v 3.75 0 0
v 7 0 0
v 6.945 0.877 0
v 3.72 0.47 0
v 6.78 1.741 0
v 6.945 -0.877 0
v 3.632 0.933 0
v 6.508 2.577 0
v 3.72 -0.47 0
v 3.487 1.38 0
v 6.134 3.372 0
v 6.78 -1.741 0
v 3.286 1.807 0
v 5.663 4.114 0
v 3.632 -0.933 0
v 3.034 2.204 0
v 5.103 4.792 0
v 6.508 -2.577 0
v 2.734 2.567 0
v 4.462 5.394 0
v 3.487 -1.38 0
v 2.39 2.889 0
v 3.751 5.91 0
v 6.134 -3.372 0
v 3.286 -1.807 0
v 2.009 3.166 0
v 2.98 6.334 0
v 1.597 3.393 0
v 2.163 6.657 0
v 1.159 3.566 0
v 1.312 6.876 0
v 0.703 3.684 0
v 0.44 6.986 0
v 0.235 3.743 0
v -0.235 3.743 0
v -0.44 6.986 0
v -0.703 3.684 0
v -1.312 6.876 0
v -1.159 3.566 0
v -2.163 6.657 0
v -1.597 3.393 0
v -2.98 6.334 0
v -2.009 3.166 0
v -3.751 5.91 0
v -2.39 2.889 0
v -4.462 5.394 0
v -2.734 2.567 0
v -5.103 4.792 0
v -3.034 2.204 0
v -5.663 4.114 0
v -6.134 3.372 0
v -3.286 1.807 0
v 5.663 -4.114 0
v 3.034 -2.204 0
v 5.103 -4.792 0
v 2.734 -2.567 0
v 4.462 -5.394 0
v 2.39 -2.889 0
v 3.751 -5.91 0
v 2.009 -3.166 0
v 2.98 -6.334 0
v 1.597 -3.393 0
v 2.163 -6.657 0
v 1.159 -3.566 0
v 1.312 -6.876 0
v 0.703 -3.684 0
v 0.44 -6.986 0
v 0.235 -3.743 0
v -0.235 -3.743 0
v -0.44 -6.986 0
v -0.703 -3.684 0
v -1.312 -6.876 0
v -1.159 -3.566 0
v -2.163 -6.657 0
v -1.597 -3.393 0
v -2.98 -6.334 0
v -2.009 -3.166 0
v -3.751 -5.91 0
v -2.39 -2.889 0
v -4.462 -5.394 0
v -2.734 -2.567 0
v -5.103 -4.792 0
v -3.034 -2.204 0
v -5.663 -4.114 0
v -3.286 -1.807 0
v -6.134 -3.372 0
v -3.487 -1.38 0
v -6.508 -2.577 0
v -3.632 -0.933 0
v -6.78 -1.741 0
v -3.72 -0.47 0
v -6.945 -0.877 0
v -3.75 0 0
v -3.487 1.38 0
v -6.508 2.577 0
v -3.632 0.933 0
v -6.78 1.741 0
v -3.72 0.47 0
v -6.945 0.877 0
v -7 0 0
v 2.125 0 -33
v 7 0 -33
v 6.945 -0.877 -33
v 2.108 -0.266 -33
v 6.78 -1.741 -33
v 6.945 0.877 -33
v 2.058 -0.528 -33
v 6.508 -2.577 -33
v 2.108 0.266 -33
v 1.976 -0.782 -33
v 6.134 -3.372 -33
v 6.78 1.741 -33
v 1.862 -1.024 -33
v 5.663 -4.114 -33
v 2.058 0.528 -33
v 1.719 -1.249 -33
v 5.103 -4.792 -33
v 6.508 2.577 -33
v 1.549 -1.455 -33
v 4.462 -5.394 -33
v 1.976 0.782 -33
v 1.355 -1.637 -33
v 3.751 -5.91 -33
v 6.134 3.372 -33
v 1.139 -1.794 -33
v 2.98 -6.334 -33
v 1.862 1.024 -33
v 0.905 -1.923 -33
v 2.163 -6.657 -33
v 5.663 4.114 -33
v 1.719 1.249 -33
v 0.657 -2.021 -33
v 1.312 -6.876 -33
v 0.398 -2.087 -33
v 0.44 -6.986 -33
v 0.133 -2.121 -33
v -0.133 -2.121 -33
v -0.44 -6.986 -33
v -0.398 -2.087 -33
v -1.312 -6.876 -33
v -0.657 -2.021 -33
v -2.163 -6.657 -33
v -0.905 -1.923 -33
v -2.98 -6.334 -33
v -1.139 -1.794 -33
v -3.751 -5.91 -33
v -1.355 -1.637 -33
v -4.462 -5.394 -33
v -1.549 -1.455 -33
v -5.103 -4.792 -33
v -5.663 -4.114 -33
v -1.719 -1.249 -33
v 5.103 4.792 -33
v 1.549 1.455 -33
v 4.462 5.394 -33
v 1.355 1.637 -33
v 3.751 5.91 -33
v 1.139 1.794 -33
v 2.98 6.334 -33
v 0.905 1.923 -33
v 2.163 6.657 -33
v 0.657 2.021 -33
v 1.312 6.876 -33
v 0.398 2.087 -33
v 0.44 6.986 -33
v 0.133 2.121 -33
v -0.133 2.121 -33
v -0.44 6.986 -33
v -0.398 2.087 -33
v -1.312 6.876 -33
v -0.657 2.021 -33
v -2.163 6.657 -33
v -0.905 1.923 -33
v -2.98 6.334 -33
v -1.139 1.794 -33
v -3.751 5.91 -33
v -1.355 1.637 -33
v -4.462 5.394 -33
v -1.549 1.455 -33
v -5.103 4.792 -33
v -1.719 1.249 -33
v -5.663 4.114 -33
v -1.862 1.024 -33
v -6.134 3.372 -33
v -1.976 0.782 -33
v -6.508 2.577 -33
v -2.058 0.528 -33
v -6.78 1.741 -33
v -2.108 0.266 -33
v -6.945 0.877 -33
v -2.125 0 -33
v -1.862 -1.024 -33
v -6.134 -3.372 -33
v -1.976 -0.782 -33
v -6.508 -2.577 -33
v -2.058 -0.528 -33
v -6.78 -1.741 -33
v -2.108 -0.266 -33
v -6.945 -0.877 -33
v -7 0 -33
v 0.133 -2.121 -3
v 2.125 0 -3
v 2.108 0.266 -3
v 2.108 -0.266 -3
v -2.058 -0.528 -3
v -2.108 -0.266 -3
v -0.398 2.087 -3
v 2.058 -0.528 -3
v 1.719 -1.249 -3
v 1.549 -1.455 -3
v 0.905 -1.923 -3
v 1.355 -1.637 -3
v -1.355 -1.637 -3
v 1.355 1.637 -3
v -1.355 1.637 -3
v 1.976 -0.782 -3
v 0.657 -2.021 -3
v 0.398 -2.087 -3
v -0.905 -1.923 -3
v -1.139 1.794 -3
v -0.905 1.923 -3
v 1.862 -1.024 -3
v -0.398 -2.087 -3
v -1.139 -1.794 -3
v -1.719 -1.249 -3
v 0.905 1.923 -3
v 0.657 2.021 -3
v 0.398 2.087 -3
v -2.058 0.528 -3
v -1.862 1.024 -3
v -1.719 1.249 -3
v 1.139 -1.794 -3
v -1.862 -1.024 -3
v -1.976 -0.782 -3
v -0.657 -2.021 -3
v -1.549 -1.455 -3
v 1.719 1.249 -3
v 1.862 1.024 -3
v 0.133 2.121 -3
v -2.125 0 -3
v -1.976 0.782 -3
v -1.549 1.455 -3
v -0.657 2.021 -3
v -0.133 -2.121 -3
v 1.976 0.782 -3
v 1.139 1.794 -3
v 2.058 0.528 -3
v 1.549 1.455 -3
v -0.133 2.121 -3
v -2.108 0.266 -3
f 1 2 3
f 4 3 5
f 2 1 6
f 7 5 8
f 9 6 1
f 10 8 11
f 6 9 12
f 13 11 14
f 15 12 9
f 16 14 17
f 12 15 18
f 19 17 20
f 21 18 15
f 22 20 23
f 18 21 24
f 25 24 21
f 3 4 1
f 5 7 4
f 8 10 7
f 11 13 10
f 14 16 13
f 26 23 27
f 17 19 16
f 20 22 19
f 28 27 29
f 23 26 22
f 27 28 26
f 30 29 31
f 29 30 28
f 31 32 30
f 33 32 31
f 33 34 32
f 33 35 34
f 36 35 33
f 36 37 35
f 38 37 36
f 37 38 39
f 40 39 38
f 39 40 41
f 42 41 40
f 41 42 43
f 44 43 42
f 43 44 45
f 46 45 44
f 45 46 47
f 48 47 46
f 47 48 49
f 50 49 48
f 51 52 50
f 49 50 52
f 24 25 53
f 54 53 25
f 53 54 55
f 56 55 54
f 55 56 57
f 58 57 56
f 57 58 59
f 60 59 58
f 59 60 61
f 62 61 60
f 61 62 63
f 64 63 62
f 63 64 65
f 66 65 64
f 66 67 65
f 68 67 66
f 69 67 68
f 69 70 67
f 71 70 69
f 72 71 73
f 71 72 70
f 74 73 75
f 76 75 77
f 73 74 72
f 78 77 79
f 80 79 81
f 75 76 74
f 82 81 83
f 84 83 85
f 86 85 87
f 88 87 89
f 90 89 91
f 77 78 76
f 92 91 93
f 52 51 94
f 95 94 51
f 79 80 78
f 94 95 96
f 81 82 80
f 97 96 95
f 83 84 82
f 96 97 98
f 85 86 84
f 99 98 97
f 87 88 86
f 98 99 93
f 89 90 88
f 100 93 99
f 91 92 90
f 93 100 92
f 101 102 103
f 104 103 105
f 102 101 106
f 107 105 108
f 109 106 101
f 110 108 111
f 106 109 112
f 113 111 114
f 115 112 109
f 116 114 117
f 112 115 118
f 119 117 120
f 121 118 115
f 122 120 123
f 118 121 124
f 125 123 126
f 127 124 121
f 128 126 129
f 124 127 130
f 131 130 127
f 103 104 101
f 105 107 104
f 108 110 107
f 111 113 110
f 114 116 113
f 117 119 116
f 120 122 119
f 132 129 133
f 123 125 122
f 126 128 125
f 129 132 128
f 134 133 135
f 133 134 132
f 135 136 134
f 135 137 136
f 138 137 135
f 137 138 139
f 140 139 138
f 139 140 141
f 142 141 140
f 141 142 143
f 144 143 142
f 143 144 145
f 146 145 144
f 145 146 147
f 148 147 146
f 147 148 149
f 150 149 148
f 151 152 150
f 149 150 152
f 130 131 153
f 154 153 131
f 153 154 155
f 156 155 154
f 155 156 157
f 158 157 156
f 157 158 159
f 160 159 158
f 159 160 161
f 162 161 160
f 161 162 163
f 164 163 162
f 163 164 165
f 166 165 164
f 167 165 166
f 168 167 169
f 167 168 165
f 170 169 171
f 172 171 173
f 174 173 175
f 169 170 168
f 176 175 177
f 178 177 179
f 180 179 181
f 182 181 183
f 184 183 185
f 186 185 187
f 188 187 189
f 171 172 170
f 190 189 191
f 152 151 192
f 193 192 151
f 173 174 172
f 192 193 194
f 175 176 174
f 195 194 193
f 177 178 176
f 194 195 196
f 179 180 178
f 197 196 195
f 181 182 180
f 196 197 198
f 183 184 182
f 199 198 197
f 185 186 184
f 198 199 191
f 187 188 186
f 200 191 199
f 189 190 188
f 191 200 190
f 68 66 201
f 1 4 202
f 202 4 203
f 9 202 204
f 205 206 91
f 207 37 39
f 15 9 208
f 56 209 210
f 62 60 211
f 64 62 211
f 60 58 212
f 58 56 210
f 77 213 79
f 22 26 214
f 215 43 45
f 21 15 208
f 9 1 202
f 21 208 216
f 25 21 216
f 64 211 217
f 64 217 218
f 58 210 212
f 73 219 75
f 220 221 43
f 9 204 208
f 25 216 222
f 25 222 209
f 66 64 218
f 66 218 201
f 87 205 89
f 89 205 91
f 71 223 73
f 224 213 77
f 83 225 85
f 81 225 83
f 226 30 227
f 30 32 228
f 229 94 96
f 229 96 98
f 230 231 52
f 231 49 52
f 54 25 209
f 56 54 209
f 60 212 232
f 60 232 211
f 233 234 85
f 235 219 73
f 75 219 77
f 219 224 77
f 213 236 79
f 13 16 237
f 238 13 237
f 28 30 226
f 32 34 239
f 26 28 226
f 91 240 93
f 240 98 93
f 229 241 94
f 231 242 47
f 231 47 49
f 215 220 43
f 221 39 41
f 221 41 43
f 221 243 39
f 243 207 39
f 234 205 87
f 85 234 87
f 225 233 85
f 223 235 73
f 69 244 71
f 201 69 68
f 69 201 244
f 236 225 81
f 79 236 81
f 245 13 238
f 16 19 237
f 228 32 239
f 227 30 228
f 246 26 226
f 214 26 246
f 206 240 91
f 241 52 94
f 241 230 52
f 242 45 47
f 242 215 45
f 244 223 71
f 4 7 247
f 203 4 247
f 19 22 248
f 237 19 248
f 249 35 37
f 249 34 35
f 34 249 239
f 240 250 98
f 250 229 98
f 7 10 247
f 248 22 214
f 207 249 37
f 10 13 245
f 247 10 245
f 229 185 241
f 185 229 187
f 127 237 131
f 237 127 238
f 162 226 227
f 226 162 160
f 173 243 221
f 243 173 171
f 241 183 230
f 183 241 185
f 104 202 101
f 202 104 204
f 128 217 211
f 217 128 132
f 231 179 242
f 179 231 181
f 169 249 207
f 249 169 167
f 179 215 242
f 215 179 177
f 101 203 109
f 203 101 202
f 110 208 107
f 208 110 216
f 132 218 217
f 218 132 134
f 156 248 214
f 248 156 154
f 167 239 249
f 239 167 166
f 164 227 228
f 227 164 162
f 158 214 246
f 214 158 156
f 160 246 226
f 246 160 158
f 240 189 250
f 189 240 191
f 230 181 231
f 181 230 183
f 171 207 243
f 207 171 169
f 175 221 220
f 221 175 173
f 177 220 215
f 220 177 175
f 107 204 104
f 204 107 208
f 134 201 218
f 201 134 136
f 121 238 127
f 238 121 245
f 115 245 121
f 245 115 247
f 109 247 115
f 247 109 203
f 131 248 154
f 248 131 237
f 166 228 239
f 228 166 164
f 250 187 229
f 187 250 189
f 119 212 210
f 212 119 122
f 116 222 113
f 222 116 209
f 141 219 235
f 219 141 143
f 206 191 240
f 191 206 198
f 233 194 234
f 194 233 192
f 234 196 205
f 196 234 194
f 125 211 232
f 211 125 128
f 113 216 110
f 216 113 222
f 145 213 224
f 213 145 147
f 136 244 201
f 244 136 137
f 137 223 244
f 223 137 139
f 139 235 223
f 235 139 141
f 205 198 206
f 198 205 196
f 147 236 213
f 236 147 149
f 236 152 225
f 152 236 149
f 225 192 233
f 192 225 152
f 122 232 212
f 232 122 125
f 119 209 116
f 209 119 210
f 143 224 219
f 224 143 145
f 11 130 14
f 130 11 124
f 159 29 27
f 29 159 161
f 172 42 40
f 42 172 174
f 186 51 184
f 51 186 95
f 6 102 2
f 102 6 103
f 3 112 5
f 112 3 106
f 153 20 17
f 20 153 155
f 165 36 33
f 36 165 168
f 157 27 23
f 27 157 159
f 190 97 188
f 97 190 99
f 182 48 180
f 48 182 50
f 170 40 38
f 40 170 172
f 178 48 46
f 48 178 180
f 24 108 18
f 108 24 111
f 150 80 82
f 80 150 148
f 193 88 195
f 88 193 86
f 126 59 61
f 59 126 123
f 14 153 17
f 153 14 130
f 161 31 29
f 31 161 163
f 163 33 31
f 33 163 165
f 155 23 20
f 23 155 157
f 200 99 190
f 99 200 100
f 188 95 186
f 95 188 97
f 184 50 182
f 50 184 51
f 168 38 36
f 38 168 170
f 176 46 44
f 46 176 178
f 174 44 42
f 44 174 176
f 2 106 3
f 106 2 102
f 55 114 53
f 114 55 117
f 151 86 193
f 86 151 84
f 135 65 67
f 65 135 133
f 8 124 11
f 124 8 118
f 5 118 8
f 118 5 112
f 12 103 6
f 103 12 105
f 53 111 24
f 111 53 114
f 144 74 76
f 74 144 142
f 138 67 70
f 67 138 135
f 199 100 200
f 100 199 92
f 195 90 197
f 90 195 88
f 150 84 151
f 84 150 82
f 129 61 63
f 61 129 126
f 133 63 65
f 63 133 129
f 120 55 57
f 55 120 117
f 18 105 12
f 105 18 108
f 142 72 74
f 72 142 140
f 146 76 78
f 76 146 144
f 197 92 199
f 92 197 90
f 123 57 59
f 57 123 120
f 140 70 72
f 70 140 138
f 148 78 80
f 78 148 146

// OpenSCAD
$fn = 50;


difference() {
	union() {
		translate(v = [0, 0, -33.0000000000]) {
			cylinder(h = 33, r = 7.0000000000);
		}
		cylinder(h = 0, r = 13.0000000000);
	}
	union() {
		translate(v = [0, 0, 0]) {
			rotate(a = [0, 0, 0]) {
				difference() {
					union() {
						#translate(v = [0, 0, -33.0000000000]) {
							cylinder(h = 33, r = 2.0000000000);
						}
						#translate(v = [0, 0, -3]) {
							cylinder(h = 3, r = 7.0000000000, r1 = 2.1250000000, r2 = 3.7500000000);
						}
						#translate(v = [0, 0, -33.0000000000]) {
							cylinder(h = 33, r = 2.1250000000);
						}
						#translate(v = [0, 0, -33.0000000000]) {
							cylinder(h = 33, r = 2.0000000000);
						}
					}
					union();
				}
			}
		}
	}
}
